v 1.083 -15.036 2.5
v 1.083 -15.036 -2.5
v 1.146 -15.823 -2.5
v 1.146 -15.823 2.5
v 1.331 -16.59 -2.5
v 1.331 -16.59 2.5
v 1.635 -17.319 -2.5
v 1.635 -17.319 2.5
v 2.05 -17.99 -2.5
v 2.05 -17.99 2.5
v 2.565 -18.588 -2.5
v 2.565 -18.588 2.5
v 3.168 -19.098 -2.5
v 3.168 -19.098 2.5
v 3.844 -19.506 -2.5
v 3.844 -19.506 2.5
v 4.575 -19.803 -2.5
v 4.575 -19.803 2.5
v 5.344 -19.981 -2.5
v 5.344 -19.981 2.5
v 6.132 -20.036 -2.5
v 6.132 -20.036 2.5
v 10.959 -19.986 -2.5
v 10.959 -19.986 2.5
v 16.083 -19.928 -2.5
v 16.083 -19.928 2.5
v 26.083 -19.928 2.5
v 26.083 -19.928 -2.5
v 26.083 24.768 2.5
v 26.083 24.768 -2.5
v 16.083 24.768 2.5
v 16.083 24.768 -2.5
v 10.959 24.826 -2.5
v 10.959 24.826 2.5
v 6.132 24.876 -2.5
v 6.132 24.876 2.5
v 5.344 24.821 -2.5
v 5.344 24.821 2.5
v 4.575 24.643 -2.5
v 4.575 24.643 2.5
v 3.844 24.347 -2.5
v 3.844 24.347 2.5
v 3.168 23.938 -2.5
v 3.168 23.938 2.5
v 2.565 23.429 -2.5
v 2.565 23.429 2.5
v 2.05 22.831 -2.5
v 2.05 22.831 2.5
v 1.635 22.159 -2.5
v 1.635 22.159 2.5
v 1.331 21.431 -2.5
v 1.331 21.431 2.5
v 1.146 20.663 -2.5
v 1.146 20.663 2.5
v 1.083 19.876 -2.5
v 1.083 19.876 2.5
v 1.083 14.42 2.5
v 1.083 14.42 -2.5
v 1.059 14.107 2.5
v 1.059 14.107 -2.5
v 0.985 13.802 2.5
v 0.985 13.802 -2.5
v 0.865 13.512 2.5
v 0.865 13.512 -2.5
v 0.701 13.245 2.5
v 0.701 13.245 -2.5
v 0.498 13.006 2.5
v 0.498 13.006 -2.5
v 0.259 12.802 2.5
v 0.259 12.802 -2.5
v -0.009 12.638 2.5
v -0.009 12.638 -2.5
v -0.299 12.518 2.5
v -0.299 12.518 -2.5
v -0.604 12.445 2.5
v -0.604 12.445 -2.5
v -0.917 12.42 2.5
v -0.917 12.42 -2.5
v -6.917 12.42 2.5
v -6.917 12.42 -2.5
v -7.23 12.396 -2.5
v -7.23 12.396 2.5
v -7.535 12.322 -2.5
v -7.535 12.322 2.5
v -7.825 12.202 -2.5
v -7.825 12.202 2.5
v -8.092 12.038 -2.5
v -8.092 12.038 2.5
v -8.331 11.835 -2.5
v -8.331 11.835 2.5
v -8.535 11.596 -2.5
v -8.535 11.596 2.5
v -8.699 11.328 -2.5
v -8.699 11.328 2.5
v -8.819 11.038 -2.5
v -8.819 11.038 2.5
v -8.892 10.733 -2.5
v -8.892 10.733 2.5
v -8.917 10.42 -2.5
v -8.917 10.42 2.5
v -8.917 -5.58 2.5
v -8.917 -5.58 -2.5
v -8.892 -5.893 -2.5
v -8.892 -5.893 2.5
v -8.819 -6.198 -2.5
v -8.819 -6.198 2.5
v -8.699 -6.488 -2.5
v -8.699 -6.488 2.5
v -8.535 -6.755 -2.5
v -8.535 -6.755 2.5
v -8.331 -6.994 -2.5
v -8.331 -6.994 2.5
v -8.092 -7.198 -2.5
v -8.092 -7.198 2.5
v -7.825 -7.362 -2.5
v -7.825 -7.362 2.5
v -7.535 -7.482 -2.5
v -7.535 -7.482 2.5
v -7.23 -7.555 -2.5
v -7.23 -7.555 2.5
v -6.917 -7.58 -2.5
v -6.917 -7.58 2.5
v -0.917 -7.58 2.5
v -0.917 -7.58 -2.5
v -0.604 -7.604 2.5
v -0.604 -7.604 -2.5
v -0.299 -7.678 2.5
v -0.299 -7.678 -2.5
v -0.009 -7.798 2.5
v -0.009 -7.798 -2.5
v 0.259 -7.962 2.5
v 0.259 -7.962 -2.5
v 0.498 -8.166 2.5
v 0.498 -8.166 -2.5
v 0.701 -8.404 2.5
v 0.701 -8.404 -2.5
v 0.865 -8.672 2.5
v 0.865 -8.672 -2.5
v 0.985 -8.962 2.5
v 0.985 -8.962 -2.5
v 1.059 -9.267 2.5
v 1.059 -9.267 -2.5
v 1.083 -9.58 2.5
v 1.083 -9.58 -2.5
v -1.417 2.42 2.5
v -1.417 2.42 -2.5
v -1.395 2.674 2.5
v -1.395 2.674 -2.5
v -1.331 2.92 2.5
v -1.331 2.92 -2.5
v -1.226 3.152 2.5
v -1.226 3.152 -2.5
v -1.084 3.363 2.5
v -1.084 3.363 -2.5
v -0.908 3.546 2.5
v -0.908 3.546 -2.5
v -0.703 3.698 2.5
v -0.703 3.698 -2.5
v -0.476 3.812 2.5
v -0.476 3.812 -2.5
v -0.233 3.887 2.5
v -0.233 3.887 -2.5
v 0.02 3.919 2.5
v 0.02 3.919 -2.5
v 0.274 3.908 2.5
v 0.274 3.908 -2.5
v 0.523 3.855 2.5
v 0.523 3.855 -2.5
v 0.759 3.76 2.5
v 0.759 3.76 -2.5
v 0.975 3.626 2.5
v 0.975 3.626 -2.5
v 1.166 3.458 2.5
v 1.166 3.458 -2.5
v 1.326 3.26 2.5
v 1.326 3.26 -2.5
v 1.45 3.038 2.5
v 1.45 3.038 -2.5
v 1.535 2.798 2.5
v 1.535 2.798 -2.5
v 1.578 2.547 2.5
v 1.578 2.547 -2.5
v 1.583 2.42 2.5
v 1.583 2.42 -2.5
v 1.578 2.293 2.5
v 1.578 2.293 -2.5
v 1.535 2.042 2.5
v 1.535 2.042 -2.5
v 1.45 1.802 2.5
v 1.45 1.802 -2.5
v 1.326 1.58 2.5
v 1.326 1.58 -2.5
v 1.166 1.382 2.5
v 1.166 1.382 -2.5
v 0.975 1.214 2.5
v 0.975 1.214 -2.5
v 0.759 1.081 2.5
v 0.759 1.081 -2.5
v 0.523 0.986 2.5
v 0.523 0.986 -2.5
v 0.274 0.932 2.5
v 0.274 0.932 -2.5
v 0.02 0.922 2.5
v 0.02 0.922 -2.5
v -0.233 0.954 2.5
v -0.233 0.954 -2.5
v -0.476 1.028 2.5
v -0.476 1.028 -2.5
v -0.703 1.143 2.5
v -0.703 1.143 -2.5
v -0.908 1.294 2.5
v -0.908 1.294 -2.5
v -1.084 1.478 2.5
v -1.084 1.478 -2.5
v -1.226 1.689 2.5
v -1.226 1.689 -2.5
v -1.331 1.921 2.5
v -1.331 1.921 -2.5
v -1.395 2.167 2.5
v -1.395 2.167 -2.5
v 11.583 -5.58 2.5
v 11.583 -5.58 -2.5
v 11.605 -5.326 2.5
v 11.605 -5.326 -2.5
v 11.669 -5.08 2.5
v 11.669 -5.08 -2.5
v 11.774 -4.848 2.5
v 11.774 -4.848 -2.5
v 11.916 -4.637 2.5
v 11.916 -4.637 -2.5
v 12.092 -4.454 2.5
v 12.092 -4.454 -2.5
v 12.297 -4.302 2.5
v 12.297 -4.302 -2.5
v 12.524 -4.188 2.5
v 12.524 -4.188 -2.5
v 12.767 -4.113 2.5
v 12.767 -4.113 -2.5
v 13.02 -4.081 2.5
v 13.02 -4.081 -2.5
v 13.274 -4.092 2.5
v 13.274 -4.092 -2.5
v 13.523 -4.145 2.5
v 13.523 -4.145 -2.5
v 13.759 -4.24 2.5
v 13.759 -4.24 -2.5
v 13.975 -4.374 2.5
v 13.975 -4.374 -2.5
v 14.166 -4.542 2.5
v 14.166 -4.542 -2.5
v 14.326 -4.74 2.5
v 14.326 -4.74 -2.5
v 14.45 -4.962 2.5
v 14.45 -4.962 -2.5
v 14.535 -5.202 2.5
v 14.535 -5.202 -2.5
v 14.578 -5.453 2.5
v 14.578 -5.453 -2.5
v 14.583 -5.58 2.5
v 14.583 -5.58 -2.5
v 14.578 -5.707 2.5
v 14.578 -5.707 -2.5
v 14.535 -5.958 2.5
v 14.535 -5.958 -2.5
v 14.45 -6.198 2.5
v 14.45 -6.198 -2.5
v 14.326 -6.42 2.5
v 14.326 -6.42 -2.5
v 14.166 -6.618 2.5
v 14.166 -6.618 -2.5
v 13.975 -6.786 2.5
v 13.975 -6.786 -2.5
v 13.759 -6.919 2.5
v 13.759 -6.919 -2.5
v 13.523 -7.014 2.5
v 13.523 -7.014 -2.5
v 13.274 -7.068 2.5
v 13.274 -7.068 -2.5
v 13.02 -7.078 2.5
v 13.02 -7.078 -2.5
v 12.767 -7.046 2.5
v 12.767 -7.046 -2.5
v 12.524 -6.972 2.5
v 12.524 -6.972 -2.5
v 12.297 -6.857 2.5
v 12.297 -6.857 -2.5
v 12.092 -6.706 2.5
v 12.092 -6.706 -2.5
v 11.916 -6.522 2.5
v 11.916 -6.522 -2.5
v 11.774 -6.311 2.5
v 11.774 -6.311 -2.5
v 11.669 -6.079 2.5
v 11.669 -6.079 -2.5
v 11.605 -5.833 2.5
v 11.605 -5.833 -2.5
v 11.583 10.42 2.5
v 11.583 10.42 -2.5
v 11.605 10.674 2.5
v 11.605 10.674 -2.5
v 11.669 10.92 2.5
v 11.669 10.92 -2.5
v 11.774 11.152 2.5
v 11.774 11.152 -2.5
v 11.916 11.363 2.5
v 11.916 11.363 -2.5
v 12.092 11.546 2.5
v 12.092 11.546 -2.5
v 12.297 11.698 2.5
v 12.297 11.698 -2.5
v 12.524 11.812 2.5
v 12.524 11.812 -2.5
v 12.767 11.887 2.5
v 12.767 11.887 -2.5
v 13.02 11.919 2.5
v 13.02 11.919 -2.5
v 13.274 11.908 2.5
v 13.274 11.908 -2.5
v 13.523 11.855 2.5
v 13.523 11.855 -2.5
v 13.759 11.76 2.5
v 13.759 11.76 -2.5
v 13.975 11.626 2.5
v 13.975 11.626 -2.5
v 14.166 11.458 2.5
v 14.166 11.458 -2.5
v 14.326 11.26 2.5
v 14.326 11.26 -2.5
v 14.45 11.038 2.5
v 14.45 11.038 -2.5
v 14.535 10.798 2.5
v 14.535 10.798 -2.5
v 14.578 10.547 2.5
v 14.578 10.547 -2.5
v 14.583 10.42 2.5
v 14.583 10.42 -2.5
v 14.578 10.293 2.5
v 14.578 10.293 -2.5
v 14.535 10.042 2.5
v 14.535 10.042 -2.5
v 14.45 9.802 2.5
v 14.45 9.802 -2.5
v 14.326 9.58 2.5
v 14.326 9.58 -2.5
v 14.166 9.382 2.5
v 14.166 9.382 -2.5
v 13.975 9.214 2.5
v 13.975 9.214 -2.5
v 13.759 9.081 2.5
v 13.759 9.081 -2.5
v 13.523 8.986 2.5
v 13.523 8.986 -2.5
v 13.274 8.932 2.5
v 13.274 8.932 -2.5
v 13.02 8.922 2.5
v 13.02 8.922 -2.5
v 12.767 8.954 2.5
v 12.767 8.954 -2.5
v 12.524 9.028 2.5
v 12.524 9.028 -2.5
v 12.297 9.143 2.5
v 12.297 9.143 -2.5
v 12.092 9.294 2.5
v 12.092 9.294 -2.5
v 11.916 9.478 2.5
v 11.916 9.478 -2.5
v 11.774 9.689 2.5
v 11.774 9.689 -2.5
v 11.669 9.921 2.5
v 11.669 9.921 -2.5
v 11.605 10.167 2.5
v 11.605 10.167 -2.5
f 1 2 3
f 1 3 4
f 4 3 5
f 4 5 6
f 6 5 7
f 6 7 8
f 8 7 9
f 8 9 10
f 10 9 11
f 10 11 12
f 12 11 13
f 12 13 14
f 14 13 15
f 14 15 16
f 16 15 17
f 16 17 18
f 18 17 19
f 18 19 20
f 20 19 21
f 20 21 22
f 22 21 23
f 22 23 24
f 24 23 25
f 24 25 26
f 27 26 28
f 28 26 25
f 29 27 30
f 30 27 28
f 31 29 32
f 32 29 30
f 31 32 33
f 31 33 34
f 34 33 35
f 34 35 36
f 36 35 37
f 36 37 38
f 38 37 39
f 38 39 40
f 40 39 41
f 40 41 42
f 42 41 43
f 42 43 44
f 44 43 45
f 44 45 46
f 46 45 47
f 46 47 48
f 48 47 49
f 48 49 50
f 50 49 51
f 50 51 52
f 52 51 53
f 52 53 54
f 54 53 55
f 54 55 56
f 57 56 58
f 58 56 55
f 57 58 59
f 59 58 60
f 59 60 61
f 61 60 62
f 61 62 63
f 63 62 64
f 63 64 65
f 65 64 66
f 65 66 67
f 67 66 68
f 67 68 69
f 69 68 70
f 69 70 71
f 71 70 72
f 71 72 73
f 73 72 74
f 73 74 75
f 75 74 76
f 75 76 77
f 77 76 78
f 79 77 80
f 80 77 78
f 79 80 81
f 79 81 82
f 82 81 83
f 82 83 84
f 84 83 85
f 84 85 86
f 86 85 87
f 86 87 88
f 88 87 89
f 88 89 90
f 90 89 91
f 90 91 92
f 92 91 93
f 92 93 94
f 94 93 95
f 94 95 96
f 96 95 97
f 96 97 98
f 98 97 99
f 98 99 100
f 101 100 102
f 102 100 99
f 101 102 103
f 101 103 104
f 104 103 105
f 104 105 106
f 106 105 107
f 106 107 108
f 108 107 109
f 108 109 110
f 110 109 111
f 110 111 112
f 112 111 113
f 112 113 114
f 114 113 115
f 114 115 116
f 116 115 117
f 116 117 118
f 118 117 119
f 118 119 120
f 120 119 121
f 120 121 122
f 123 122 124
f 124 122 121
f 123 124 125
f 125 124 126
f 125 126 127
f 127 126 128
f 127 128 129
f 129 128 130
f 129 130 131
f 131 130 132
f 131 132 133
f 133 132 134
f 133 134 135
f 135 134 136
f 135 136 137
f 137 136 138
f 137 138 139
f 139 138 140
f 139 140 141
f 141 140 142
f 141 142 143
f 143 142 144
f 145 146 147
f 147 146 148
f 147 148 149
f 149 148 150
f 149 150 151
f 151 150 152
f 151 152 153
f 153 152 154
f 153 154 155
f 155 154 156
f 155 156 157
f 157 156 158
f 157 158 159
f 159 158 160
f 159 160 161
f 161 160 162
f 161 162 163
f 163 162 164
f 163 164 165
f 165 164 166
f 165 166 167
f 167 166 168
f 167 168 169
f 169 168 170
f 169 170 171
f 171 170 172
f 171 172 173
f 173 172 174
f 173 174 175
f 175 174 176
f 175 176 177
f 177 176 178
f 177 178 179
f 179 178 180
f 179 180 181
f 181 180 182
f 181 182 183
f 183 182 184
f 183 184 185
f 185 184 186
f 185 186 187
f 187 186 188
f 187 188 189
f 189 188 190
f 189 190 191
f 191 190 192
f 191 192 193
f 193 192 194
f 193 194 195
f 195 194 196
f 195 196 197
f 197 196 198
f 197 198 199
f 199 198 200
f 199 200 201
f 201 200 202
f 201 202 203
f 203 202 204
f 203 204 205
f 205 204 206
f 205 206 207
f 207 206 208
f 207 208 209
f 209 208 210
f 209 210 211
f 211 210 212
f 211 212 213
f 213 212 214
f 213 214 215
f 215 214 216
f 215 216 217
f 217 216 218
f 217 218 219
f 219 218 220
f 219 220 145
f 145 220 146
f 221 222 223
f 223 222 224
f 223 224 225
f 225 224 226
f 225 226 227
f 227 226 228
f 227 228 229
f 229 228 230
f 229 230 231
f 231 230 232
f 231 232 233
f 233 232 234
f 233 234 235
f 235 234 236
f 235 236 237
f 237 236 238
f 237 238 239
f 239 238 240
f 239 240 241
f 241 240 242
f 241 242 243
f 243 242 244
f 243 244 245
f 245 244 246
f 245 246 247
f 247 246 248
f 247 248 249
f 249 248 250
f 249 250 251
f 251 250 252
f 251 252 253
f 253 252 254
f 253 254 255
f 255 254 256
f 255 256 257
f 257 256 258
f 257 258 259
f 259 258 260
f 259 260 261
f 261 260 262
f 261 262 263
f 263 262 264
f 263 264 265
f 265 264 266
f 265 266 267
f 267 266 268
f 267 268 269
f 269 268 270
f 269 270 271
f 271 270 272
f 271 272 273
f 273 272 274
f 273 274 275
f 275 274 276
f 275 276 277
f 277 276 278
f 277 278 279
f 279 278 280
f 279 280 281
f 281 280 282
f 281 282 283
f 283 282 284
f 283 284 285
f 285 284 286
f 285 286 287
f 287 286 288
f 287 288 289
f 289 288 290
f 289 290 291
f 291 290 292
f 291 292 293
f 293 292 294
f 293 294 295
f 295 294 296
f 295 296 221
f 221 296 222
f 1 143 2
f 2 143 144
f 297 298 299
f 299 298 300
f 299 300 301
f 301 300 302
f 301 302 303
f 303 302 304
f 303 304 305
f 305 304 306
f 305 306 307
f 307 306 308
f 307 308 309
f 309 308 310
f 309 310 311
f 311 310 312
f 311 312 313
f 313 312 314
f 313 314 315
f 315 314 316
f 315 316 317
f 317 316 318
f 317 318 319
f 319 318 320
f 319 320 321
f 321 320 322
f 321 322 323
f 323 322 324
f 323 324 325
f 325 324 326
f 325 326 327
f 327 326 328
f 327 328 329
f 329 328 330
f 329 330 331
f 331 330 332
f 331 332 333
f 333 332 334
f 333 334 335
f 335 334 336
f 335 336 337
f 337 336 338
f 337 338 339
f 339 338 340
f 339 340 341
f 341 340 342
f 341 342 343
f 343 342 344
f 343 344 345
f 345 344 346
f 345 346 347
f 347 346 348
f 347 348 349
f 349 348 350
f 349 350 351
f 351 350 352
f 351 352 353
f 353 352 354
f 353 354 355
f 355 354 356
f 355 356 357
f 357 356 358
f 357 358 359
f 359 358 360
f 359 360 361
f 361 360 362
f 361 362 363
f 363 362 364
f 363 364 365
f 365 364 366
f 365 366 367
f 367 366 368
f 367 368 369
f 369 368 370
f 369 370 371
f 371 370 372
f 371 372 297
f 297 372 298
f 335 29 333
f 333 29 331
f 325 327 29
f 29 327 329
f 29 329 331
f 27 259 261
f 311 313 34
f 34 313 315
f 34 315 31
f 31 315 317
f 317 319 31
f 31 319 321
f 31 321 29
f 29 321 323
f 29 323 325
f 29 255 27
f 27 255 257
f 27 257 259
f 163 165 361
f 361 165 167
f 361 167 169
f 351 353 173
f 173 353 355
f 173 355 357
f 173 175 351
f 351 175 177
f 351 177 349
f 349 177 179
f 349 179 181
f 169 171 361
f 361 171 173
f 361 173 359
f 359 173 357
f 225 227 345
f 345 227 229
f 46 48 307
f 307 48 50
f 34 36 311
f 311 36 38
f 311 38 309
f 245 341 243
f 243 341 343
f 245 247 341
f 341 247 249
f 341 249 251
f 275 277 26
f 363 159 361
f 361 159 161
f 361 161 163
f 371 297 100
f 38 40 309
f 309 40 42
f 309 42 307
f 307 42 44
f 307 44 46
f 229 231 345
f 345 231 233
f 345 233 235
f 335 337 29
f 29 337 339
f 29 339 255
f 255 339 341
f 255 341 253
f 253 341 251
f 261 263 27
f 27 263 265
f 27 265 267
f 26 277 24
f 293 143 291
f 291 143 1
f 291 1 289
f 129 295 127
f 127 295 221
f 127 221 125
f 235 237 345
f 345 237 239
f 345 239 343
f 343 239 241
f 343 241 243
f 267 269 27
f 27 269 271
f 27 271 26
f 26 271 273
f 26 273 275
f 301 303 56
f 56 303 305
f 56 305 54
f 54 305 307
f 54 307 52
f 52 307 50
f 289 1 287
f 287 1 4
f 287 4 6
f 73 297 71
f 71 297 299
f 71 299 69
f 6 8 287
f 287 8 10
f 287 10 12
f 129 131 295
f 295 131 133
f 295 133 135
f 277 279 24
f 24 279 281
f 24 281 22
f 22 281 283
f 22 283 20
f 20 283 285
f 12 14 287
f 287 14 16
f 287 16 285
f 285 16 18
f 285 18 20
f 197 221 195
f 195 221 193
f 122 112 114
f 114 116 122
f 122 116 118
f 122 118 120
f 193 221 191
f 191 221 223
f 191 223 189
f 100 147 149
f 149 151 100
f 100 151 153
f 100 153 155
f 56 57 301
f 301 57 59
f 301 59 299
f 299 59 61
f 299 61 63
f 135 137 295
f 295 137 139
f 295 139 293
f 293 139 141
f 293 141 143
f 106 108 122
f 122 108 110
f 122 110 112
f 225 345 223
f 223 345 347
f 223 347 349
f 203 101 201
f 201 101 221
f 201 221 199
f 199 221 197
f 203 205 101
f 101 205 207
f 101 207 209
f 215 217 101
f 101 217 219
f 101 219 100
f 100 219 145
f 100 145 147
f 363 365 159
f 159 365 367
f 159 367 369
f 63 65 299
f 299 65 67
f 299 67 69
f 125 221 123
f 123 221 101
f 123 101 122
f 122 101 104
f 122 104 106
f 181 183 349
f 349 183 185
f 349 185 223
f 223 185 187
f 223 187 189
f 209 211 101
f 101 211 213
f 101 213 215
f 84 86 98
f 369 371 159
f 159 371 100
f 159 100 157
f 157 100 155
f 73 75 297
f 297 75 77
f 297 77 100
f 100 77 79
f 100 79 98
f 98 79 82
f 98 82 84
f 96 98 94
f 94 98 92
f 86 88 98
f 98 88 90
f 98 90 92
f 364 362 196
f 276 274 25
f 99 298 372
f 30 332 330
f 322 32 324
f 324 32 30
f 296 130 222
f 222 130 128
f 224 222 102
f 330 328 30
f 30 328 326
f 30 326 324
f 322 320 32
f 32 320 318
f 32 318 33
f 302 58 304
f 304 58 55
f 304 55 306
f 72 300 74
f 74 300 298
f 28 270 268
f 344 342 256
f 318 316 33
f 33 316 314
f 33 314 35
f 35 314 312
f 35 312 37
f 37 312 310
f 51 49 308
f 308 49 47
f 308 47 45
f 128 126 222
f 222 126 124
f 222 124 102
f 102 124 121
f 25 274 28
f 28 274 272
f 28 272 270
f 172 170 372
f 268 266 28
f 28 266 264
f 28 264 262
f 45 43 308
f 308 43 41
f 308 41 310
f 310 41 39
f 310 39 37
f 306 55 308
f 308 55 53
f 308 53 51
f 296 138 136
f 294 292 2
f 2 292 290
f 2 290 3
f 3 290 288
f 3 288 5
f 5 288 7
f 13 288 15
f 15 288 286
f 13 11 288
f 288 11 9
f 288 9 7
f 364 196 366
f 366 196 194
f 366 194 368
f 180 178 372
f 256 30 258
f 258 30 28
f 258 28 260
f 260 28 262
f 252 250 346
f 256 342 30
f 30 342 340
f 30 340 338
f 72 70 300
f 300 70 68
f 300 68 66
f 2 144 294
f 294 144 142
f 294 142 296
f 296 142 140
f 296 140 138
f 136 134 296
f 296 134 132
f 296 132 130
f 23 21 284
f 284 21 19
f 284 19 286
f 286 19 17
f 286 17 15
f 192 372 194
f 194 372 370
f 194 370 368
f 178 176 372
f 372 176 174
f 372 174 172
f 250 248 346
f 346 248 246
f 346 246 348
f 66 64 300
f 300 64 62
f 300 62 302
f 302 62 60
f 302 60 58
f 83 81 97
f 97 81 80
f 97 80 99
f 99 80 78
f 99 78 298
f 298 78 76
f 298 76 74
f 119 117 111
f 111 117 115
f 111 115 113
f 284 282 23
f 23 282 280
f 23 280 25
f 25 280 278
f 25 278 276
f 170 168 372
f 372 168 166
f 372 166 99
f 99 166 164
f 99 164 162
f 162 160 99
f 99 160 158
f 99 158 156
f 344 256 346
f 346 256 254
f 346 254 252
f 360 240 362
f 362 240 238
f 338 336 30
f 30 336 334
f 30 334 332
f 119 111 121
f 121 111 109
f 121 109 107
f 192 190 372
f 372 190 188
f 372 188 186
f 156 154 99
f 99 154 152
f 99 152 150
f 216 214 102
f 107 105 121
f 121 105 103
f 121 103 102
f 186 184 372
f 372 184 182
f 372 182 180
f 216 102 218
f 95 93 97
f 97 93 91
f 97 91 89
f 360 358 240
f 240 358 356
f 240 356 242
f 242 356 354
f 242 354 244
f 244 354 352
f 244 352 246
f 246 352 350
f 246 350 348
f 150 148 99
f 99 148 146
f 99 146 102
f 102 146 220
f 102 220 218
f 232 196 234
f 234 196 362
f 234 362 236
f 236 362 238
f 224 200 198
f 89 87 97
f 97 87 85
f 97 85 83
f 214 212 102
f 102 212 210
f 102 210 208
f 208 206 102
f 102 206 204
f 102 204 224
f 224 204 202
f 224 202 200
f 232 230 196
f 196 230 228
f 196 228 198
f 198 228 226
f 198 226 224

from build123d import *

# Parameters (mm, degrees)
SKETCH1_R           = 1.5
BOSS_EXTRUDE1_DEPTH = 2.5


with BuildPart() as part:
    # Sketch1 → Boss-Extrude1 (new, symmetric)
    with BuildSketch(Plane.XY):
        with BuildLine():
            Line((1.083328706, 19.876336974), (1.083328706, 14.420285823))
            ThreePointArc((1.083328706, 14.420285823), (0.497542269, 13.006072261), (-0.916671294, 12.420285823))
            Line((-0.916671294, 12.420285823), (-6.916671294, 12.420285823))
            ThreePointArc((-6.916671294, 12.420285823), (-8.330884856, 11.834499385), (-8.916671294, 10.420285823))
            Line((-8.916671294, 10.420285823), (-8.916671294, -5.579714177))
            ThreePointArc((-8.916671294, -5.579714177), (-8.330884856, -6.993927739), (-6.916671294, -7.579714177))
            Line((-6.916671294, -7.579714177), (-0.916671294, -7.579714177))
            ThreePointArc((-0.916671294, -7.579714177), (0.497542269, -8.165500615), (1.083328706, -9.579714177))
            Line((1.083328706, -9.579714177), (1.083328706, -15.035765328))
            ThreePointArc((1.083328706, -15.035765328), (2.564962353, -18.588383827), (6.131767987, -20.035530686))
            add(Edge.make_bspline(
                [(6.131767987, -20.035530686), (9.248092377, -20.005338767), (12.570832777, -19.968565053), (16.083328706, -19.927626228)],
                knots=[0.046327938, 0.046327938, 0.046327938, 0.046327938, 0.128883425, 0.128883425, 0.128883425, 0.128883425], degree=3))
            Line((16.083328706, -19.927626228), (26.083328706, -19.927626228))
            Line((26.083328706, -19.927626228), (26.083328706, 24.768197874))
            Line((26.083328706, 24.768197874), (16.083328706, 24.768197874))
            add(Edge.make_bspline(
                [(16.083328706, 24.768197874), (12.570832777, 24.809136699), (9.248092377, 24.845910412), (6.131767987, 24.876102332)],
                knots=[0.046327938, 0.046327938, 0.046327938, 0.046327938, 0.128883425, 0.128883425, 0.128883425, 0.128883425], degree=3))
            ThreePointArc((6.131767987, 24.876102332), (2.564962353, 23.428955473), (1.083328706, 19.876336974))
        make_face()
        with Locations((13.083328706, 10.420285823)):
            Circle(SKETCH1_R, mode=Mode.SUBTRACT)
        with Locations((0.083328706, 2.420285823)):
            Circle(SKETCH1_R, mode=Mode.SUBTRACT)
        with Locations((13.083328706, -5.579714177)):
            Circle(SKETCH1_R, mode=Mode.SUBTRACT)
    extrude(amount=BOSS_EXTRUDE1_DEPTH, both=True)


solid = part.part
